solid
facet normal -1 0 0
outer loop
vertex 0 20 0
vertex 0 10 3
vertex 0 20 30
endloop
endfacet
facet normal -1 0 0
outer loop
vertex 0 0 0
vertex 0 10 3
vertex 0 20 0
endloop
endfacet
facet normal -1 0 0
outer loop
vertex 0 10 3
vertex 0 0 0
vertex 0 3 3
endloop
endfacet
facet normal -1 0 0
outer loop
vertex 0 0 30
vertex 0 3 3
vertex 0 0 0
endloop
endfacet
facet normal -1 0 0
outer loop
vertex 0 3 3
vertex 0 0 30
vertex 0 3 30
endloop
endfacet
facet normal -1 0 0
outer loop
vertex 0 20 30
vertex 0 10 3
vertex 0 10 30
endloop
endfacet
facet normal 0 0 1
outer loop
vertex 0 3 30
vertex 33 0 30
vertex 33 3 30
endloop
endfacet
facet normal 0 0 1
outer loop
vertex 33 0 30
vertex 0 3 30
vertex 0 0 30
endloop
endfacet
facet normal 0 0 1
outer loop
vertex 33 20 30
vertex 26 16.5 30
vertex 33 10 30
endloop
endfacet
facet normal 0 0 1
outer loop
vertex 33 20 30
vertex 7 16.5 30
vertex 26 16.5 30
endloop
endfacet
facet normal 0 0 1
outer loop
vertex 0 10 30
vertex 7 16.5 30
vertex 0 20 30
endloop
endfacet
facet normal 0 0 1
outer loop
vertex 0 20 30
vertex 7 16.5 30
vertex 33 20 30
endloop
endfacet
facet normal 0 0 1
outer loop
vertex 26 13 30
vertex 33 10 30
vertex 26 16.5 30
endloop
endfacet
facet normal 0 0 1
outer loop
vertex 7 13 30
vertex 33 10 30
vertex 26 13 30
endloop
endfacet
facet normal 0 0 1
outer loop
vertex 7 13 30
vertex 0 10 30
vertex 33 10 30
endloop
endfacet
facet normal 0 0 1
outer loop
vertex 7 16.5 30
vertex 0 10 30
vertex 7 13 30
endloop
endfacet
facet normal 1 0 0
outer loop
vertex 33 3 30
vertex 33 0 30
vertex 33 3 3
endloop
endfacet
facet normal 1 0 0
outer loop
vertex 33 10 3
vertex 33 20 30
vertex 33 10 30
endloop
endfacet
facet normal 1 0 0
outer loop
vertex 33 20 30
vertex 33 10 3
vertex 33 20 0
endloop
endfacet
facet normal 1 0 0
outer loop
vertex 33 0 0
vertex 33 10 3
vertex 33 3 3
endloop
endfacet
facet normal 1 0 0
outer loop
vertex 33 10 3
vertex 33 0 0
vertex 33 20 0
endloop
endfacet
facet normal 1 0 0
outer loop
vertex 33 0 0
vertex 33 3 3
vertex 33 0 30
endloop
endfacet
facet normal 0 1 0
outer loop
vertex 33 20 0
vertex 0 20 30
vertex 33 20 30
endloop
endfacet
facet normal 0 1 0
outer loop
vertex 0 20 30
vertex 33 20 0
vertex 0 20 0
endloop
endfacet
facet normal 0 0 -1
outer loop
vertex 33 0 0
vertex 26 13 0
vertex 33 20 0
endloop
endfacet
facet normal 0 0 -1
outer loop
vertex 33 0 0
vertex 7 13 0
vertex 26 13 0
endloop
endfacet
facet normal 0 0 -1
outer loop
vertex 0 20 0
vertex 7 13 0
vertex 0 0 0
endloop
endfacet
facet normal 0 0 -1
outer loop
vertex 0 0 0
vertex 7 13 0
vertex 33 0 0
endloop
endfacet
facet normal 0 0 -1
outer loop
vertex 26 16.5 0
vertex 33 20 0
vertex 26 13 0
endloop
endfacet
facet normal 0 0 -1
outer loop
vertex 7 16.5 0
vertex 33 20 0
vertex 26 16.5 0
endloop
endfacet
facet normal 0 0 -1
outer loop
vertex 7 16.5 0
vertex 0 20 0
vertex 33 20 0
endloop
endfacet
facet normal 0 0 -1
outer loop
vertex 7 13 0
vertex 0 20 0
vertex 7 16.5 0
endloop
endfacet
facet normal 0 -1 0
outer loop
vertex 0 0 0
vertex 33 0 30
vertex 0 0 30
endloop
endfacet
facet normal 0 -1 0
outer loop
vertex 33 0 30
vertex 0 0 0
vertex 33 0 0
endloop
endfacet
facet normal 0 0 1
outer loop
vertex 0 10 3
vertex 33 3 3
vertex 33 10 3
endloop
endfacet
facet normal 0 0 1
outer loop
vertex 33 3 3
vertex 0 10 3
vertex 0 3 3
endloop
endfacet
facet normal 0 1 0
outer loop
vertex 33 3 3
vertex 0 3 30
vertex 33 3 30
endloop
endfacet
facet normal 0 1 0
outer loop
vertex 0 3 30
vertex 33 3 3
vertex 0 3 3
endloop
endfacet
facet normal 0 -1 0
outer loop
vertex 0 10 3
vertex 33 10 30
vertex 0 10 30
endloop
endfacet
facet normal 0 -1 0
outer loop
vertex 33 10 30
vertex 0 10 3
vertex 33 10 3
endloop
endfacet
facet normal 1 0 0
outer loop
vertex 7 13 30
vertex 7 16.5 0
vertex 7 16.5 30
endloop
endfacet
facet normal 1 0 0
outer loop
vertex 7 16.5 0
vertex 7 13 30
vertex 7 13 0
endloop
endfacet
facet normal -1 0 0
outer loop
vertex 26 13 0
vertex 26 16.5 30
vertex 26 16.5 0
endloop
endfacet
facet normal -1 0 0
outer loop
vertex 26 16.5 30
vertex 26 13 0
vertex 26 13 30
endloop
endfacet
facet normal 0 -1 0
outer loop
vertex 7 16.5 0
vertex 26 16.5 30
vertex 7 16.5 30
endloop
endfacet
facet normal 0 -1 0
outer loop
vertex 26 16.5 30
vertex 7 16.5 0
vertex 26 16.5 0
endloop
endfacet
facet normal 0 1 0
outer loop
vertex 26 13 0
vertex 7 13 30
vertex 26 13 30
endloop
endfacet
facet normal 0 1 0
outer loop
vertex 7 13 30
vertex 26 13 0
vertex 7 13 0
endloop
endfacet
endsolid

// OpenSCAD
w = 33;
d = 20;
h = 30;

difference() {
    cube([w, d, h]);
    translate([-1, 3, 3])
        cube([w + 2, 7, h + 1]);
    translate([w/2 - 19/2, 13, -1])
        cube([19, 3.5, h + 2]);
}
